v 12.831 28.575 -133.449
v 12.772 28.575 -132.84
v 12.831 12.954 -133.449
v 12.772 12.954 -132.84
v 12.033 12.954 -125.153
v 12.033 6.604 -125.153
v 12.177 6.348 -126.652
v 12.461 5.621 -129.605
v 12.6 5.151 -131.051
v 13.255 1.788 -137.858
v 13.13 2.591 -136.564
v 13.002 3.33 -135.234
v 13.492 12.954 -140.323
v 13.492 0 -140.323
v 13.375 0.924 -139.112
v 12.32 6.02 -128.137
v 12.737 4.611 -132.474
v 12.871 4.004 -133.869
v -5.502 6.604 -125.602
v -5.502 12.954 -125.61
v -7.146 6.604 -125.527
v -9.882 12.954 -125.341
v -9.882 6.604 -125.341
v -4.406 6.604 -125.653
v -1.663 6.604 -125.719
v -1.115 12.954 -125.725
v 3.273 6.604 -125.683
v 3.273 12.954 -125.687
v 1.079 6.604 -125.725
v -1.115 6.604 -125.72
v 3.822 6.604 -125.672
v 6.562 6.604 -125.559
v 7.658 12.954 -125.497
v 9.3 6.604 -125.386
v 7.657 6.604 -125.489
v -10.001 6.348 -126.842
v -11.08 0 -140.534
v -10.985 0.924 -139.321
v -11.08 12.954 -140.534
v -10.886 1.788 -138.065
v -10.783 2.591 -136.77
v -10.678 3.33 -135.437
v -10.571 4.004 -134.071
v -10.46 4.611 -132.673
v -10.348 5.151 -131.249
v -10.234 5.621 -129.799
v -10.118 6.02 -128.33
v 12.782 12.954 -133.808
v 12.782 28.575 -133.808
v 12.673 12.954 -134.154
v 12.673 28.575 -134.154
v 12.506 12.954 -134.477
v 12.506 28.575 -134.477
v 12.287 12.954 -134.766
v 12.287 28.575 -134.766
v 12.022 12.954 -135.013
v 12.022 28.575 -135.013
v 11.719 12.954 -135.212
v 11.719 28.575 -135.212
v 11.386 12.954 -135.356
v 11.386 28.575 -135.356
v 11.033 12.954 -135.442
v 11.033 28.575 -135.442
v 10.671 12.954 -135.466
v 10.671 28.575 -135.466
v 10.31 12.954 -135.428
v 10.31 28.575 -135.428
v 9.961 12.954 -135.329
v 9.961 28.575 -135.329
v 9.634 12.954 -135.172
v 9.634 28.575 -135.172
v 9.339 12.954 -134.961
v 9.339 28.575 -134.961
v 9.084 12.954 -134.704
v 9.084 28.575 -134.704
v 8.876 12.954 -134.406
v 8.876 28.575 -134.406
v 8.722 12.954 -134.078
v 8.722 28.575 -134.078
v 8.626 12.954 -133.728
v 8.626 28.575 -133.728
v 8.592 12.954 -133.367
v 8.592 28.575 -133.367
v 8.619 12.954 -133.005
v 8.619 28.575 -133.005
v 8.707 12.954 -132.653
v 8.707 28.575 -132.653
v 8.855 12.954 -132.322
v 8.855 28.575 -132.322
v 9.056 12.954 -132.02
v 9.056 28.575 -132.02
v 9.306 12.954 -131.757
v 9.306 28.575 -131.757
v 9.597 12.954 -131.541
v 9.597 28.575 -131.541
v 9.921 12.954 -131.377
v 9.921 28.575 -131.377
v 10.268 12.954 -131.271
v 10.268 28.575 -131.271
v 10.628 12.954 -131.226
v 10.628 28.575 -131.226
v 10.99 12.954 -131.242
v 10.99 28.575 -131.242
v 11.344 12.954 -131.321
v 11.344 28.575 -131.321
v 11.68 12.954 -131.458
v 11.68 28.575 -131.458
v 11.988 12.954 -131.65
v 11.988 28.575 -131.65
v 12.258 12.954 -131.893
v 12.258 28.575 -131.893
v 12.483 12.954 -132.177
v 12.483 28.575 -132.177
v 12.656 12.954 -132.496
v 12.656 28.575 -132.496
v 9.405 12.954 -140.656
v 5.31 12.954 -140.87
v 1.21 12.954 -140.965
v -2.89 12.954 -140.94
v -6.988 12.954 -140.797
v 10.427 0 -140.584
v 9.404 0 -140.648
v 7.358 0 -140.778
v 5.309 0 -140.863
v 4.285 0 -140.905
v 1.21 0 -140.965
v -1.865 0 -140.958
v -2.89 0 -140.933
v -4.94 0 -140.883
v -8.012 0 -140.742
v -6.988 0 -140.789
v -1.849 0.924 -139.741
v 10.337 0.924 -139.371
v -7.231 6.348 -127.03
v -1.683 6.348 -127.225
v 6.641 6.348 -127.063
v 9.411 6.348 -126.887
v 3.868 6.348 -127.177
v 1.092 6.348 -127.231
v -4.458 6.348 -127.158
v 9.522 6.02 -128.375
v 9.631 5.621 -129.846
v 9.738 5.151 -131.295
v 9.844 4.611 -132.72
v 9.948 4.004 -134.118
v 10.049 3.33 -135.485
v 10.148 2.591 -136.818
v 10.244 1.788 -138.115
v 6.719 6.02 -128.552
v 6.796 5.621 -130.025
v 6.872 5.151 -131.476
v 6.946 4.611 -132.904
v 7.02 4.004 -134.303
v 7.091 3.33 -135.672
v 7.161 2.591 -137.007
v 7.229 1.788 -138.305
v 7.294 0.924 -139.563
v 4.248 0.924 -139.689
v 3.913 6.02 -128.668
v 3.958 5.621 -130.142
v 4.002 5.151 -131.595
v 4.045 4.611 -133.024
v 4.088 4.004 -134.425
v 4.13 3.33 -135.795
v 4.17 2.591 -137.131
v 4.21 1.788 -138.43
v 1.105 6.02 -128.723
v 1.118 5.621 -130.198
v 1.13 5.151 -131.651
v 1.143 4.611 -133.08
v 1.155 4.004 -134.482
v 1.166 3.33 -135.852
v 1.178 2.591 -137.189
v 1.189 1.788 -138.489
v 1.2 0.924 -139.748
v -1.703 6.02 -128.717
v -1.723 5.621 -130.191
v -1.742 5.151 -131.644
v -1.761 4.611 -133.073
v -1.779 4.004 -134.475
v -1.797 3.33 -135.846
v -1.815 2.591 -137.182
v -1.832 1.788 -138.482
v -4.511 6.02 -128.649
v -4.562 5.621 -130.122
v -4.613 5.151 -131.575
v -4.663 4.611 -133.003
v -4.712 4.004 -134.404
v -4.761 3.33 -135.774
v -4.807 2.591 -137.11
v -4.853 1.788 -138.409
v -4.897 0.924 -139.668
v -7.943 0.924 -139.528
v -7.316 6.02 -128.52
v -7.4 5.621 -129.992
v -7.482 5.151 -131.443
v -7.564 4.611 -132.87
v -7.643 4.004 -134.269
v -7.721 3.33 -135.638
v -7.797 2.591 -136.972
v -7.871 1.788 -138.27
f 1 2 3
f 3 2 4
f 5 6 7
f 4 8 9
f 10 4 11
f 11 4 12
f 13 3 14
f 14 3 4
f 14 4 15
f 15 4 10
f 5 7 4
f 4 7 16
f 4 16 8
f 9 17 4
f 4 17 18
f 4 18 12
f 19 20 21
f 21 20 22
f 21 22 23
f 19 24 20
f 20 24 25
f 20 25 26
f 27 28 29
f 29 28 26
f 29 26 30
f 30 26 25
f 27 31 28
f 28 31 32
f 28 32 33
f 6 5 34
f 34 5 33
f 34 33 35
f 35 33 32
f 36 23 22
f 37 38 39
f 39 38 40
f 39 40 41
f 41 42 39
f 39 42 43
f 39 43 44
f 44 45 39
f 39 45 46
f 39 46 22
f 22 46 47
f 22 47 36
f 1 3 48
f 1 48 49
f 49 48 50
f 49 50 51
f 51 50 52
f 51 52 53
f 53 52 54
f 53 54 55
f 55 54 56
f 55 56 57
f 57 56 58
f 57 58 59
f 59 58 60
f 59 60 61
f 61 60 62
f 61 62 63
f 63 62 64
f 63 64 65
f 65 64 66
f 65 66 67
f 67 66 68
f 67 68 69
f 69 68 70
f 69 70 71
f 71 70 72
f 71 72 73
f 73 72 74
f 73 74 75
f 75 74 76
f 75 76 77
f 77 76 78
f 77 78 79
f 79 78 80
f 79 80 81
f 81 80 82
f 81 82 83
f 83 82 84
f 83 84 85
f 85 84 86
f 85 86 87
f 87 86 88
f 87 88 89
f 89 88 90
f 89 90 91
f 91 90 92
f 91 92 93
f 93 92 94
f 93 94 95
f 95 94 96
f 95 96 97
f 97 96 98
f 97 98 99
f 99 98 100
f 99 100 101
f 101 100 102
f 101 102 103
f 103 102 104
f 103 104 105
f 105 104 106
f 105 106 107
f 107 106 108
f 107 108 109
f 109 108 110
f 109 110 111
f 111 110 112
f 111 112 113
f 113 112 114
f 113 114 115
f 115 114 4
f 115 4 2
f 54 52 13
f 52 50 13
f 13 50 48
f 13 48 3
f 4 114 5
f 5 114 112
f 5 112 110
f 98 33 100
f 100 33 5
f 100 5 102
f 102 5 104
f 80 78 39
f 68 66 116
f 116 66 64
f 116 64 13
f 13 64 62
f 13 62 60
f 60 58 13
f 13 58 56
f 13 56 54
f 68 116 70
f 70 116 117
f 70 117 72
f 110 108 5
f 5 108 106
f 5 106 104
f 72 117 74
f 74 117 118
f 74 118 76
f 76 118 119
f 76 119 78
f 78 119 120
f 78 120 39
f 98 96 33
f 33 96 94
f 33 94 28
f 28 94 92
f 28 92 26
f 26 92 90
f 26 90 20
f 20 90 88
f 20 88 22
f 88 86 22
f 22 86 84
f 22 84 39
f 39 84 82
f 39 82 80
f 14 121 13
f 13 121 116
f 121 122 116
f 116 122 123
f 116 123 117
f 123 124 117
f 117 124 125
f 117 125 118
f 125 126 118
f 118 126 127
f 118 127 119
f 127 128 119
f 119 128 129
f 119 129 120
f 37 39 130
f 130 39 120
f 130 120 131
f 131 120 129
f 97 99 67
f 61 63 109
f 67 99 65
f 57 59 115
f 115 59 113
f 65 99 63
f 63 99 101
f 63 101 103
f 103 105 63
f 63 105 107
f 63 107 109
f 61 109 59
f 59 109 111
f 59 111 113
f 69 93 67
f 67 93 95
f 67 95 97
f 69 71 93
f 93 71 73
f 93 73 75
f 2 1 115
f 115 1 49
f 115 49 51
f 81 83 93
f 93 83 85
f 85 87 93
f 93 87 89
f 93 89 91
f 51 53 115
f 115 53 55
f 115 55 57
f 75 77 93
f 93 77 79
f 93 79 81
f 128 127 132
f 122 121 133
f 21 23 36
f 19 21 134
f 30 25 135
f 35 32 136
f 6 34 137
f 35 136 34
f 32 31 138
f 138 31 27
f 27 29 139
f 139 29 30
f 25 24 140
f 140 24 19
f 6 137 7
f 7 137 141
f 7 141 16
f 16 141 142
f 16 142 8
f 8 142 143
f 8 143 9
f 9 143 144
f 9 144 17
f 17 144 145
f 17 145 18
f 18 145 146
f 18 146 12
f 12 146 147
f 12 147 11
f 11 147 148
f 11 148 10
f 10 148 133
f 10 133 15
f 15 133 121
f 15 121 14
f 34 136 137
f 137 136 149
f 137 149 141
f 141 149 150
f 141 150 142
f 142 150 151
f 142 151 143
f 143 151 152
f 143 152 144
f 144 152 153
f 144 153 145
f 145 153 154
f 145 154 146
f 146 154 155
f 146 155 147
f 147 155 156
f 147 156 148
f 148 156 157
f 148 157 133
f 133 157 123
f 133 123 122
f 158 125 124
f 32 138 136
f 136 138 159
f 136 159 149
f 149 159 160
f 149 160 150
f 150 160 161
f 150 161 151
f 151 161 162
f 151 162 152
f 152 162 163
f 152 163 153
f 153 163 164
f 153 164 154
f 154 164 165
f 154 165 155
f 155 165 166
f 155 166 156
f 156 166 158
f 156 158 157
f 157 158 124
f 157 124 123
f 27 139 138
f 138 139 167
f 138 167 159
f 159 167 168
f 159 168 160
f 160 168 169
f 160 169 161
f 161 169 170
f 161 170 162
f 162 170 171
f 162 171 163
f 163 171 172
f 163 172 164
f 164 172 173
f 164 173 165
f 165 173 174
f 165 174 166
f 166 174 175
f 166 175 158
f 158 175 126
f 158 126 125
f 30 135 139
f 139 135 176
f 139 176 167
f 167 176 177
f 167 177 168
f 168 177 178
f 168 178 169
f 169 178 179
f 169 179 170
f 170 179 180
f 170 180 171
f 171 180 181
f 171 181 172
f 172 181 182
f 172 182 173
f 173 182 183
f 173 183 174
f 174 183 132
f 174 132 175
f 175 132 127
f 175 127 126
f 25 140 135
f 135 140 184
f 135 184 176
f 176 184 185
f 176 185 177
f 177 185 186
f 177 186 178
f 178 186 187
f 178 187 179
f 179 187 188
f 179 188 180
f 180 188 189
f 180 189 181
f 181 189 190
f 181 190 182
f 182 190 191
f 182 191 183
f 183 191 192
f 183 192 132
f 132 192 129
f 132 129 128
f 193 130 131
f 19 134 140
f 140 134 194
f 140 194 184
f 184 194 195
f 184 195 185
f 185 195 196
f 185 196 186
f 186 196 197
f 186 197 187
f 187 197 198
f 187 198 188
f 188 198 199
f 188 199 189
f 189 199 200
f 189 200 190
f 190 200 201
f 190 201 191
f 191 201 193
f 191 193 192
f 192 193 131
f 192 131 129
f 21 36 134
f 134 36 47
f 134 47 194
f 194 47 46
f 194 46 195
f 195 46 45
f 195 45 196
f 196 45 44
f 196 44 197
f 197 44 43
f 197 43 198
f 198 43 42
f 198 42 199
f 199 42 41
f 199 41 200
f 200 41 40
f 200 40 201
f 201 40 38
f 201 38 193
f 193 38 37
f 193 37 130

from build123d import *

# Parameters (mm, degrees)
SKETCH1_R           = 140.97
SKETCH1_R_2         = 125.73
BOSS_EXTRUDE1_DEPTH = 12.954
CUT_EXTRUDE1_START  = -12.954
CUT_EXTRUDE1_DEPTH  = 12.954
SKETCH5_R           = 2.1209
BOSS_EXTRUDE2_DEPTH = 28.575
SKETCH6_W           = 35.941656598
SKETCH6_H           = 50
CUT_EXTRUDE2_DEPTH  = 25.4


with BuildPart() as part:
    # Sketch1 → Boss-Extrude1 (new body)
    with BuildSketch(Plane(origin=(0, 0, 0), x_dir=(1, 0, 0), z_dir=(0, 1, 0))):
        with Locations(Location((0, 0, 0), (0, 0, 270))):
            Circle(SKETCH1_R)
        with Locations(Location((0, 0, 0), (0, 0, 270))):
            Circle(SKETCH1_R_2, mode=Mode.SUBTRACT)
    extrude(amount=BOSS_EXTRUDE1_DEPTH)

    # Sketch3 → Cut-Extrude1 (cut)
    with BuildSketch(Plane(origin=(0, 12.954, 0), x_dir=(1, 0, 0), z_dir=(0, 1, 0)).offset(CUT_EXTRUDE1_START)):
        with BuildLine():
            Line((13.491584054, 140.322906397), (12.033034426, 125.152862462))
            ThreePointArc((12.033034426, 125.152862462), (93.061663209, 84.54324184), (125.73, 0))
            ThreePointArc((125.73, 0), (-85.339106447, -92.332387659), (-9.882340901, 125.341023764))
            Line((-9.882340901, 125.341023764), (-11.080200404, 140.53387513))
            ThreePointArc((-11.080200404, 140.53387513), (-95.683240562, -103.524192223), (140.97, 0))
            ThreePointArc((140.97, 0), (104.34186481, 94.790907517), (13.491584054, 140.322906397))
        make_face()
    extrude(amount=CUT_EXTRUDE1_DEPTH, mode=Mode.SUBTRACT)

    # Sketch5 → Boss-Extrude2 (add)
    with BuildSketch(Plane(origin=(0, 0, 0), x_dir=(1, 0, 0), z_dir=(0, 1, 0))):
        with Locations(Location((10.71230924, 133.345085246, 0), (0, 0, 2.80489485))):
            Circle(SKETCH5_R)
    extrude(amount=BOSS_EXTRUDE2_DEPTH)

    # Sketch2 → Cut-Revolve1 (revolve, cut)
    with BuildSketch(Plane.XY):
        with BuildLine():
            Line((-125.73, 6.604), (-125.73, 0))
            Line((-125.73, 0), (-140.97, 0))
            ThreePointArc((-140.97, 0), (-133.78949329, 4.316215284), (-125.73, 6.604))
        make_face()
    revolve(axis=Axis((0, 0, 0), (0, 1, 0)), mode=Mode.SUBTRACT)

    # Sketch6 → Cut-Extrude2 (cut)
    with BuildSketch(Plane(origin=(0, 0, 0), x_dir=(0.09570535612916914, 0, -0.9954097070092239), z_dir=(0.995409707009224, 0, 0.09570535612916914))):
        with Locations((132.91957607, 23.563430101)):
            Rectangle(SKETCH6_W, SKETCH6_H)
    extrude(amount=CUT_EXTRUDE2_DEPTH, mode=Mode.SUBTRACT)


solid = part.part
